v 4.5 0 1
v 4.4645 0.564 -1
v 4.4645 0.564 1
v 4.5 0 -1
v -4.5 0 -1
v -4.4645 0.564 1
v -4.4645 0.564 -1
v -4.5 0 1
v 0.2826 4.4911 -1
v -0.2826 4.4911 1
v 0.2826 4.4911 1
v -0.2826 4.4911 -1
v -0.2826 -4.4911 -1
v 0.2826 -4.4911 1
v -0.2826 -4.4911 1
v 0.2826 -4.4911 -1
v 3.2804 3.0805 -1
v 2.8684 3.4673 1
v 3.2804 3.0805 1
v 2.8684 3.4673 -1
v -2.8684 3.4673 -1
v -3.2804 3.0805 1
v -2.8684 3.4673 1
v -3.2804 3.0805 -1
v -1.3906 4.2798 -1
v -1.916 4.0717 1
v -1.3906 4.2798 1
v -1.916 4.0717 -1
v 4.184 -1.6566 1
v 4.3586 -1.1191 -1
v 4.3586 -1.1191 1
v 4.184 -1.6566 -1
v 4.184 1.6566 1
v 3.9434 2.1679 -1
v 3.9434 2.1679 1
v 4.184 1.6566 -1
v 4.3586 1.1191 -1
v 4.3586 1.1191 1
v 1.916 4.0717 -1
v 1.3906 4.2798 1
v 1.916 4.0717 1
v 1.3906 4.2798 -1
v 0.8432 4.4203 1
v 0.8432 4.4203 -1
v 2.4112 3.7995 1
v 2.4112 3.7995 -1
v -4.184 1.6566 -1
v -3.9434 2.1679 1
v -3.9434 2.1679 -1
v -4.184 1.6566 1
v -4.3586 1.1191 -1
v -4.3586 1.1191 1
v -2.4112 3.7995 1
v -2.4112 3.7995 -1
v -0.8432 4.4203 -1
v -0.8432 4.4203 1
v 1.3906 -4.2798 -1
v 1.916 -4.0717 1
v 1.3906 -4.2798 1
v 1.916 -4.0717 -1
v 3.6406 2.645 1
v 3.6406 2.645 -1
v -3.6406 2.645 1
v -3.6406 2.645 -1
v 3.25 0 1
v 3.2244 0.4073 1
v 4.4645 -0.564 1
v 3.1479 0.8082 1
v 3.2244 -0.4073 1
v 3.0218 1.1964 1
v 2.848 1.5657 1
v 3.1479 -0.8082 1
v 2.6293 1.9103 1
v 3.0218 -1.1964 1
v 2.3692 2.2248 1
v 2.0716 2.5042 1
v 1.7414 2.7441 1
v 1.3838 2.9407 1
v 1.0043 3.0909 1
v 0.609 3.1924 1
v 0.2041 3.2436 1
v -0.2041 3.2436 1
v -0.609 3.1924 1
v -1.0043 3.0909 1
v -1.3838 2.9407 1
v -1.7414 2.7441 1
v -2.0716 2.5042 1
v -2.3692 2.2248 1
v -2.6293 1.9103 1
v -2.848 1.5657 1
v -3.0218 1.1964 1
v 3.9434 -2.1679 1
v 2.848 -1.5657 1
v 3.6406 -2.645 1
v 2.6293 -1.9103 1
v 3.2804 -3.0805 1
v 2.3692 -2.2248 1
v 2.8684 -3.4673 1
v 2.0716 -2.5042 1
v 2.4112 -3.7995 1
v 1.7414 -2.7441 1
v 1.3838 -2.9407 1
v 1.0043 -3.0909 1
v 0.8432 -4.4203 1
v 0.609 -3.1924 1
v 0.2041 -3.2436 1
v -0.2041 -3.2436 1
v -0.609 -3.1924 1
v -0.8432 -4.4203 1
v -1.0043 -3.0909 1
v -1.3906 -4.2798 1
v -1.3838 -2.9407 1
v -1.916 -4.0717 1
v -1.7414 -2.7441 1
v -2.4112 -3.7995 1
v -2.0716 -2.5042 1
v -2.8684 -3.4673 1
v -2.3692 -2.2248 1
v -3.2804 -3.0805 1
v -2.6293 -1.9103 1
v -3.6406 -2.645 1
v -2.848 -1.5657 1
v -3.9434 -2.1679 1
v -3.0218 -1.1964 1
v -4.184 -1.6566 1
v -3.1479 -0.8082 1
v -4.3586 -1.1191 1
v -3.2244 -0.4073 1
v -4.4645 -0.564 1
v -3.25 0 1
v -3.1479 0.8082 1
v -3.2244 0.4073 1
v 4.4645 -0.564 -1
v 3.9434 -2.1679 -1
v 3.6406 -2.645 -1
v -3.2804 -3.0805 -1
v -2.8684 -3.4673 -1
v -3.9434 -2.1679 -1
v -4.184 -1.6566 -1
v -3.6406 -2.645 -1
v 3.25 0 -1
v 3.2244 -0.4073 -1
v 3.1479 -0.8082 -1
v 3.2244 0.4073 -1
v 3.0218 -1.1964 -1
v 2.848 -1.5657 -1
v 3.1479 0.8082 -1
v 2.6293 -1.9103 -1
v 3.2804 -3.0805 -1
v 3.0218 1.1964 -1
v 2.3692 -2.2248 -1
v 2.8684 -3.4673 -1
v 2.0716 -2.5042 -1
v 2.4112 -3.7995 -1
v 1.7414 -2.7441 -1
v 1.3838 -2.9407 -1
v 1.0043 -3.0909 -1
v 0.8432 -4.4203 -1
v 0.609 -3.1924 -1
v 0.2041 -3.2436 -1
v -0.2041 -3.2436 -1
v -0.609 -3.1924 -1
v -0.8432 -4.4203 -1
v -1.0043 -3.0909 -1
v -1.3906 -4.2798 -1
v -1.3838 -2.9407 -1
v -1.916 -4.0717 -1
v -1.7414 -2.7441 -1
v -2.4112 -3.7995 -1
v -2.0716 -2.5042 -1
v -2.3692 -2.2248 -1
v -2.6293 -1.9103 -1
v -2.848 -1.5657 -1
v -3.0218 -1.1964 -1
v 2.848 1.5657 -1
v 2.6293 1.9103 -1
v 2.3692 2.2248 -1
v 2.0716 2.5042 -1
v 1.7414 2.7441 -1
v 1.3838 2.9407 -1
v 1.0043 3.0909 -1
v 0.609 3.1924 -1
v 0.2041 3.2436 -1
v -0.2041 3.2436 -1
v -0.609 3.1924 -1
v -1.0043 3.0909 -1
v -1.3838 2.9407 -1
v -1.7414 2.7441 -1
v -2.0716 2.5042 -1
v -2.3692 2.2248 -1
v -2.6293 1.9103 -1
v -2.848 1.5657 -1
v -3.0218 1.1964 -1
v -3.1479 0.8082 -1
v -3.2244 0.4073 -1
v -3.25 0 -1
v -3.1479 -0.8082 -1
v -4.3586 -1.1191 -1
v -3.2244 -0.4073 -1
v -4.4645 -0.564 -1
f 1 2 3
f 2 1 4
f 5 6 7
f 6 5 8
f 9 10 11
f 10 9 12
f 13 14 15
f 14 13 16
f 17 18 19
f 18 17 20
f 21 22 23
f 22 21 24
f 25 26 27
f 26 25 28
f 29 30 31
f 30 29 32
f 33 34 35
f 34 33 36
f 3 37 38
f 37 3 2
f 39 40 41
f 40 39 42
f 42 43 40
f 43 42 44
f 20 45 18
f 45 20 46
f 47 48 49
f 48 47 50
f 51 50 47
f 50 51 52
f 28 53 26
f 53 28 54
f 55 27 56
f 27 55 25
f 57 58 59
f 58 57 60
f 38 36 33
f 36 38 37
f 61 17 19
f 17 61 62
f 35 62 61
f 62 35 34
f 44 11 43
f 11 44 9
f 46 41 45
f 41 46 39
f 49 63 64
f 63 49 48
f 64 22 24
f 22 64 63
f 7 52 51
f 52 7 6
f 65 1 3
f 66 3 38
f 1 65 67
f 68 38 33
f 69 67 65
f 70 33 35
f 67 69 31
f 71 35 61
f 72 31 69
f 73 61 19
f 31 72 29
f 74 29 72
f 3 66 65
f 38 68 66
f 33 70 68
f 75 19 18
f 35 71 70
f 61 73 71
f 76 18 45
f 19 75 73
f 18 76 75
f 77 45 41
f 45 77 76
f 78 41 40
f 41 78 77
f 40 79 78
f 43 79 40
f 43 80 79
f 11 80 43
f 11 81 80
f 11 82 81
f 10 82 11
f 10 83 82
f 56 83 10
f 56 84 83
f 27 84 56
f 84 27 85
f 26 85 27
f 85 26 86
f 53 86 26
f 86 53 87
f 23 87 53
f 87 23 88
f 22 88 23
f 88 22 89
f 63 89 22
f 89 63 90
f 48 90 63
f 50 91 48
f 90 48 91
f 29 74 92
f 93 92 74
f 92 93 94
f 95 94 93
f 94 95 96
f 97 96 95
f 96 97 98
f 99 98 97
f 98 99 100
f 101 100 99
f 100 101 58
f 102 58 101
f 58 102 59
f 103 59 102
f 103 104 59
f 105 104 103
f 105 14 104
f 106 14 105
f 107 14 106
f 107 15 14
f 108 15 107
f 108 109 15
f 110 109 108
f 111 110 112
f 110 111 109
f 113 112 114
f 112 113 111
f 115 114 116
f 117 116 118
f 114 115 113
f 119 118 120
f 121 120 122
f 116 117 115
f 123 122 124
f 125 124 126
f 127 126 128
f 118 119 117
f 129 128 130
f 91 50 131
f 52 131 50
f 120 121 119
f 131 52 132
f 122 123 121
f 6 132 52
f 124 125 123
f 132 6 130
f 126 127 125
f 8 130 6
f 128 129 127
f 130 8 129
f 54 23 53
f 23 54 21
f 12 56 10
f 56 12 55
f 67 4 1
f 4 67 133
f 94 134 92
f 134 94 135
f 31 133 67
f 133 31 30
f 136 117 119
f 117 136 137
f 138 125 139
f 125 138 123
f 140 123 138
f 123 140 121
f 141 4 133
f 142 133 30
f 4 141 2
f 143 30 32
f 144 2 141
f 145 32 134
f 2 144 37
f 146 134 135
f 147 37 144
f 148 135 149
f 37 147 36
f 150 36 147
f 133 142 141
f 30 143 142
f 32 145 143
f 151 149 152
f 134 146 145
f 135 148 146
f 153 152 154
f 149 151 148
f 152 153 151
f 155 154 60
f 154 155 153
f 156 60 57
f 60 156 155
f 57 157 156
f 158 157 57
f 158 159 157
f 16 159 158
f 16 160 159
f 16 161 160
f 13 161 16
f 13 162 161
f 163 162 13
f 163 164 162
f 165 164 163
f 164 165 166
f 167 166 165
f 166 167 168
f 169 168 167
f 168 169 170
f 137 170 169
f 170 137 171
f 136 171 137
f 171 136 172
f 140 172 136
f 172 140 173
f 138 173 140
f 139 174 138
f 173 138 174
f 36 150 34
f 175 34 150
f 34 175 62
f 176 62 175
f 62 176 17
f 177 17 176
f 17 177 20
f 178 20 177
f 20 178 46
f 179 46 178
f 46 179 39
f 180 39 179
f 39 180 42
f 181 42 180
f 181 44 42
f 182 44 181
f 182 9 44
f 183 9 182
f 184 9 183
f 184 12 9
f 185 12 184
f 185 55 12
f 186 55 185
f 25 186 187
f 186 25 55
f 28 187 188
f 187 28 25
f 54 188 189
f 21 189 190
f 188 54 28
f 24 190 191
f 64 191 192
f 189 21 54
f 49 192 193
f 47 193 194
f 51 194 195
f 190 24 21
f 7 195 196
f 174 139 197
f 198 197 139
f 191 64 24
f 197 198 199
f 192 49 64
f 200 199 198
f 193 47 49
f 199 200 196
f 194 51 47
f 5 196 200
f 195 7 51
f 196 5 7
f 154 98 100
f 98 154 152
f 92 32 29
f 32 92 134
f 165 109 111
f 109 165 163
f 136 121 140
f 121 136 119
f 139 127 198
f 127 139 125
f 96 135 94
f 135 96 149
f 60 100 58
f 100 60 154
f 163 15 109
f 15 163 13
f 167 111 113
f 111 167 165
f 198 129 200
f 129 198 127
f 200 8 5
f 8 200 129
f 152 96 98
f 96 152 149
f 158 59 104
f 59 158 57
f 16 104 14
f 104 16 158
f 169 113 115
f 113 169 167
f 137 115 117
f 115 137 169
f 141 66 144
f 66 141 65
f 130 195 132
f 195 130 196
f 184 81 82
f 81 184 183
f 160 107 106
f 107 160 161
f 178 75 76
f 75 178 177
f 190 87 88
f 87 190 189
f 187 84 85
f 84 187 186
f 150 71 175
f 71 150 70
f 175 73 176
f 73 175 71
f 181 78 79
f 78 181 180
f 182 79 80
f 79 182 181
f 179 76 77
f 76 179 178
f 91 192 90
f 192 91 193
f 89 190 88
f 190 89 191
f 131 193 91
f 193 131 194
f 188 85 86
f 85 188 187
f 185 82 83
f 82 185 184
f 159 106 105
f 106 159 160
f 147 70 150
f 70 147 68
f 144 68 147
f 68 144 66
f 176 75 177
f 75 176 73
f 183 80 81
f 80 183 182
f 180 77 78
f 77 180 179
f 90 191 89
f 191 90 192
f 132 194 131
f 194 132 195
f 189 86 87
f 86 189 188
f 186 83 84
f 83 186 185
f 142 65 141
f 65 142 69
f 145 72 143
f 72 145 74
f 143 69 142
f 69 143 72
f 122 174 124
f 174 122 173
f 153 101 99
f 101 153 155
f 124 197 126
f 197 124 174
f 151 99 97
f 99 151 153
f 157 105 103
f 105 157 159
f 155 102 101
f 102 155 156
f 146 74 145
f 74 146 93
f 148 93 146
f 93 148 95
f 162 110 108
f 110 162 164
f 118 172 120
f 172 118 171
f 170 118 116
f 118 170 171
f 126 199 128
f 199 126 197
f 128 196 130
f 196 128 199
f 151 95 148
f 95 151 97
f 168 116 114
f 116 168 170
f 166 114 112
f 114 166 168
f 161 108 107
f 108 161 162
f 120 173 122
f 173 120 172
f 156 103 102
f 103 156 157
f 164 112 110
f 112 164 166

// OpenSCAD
$fn = 50;


difference() {
	union() {
		translate(v = [0, 0, -1.0000000000]) {
			cylinder(h = 2, r = 4.5000000000);
		}
	}
	union() {
		translate(v = [0, 0, -100.0000000000]) {
			cylinder(h = 200, r = 3.2500000000);
		}
	}
}
